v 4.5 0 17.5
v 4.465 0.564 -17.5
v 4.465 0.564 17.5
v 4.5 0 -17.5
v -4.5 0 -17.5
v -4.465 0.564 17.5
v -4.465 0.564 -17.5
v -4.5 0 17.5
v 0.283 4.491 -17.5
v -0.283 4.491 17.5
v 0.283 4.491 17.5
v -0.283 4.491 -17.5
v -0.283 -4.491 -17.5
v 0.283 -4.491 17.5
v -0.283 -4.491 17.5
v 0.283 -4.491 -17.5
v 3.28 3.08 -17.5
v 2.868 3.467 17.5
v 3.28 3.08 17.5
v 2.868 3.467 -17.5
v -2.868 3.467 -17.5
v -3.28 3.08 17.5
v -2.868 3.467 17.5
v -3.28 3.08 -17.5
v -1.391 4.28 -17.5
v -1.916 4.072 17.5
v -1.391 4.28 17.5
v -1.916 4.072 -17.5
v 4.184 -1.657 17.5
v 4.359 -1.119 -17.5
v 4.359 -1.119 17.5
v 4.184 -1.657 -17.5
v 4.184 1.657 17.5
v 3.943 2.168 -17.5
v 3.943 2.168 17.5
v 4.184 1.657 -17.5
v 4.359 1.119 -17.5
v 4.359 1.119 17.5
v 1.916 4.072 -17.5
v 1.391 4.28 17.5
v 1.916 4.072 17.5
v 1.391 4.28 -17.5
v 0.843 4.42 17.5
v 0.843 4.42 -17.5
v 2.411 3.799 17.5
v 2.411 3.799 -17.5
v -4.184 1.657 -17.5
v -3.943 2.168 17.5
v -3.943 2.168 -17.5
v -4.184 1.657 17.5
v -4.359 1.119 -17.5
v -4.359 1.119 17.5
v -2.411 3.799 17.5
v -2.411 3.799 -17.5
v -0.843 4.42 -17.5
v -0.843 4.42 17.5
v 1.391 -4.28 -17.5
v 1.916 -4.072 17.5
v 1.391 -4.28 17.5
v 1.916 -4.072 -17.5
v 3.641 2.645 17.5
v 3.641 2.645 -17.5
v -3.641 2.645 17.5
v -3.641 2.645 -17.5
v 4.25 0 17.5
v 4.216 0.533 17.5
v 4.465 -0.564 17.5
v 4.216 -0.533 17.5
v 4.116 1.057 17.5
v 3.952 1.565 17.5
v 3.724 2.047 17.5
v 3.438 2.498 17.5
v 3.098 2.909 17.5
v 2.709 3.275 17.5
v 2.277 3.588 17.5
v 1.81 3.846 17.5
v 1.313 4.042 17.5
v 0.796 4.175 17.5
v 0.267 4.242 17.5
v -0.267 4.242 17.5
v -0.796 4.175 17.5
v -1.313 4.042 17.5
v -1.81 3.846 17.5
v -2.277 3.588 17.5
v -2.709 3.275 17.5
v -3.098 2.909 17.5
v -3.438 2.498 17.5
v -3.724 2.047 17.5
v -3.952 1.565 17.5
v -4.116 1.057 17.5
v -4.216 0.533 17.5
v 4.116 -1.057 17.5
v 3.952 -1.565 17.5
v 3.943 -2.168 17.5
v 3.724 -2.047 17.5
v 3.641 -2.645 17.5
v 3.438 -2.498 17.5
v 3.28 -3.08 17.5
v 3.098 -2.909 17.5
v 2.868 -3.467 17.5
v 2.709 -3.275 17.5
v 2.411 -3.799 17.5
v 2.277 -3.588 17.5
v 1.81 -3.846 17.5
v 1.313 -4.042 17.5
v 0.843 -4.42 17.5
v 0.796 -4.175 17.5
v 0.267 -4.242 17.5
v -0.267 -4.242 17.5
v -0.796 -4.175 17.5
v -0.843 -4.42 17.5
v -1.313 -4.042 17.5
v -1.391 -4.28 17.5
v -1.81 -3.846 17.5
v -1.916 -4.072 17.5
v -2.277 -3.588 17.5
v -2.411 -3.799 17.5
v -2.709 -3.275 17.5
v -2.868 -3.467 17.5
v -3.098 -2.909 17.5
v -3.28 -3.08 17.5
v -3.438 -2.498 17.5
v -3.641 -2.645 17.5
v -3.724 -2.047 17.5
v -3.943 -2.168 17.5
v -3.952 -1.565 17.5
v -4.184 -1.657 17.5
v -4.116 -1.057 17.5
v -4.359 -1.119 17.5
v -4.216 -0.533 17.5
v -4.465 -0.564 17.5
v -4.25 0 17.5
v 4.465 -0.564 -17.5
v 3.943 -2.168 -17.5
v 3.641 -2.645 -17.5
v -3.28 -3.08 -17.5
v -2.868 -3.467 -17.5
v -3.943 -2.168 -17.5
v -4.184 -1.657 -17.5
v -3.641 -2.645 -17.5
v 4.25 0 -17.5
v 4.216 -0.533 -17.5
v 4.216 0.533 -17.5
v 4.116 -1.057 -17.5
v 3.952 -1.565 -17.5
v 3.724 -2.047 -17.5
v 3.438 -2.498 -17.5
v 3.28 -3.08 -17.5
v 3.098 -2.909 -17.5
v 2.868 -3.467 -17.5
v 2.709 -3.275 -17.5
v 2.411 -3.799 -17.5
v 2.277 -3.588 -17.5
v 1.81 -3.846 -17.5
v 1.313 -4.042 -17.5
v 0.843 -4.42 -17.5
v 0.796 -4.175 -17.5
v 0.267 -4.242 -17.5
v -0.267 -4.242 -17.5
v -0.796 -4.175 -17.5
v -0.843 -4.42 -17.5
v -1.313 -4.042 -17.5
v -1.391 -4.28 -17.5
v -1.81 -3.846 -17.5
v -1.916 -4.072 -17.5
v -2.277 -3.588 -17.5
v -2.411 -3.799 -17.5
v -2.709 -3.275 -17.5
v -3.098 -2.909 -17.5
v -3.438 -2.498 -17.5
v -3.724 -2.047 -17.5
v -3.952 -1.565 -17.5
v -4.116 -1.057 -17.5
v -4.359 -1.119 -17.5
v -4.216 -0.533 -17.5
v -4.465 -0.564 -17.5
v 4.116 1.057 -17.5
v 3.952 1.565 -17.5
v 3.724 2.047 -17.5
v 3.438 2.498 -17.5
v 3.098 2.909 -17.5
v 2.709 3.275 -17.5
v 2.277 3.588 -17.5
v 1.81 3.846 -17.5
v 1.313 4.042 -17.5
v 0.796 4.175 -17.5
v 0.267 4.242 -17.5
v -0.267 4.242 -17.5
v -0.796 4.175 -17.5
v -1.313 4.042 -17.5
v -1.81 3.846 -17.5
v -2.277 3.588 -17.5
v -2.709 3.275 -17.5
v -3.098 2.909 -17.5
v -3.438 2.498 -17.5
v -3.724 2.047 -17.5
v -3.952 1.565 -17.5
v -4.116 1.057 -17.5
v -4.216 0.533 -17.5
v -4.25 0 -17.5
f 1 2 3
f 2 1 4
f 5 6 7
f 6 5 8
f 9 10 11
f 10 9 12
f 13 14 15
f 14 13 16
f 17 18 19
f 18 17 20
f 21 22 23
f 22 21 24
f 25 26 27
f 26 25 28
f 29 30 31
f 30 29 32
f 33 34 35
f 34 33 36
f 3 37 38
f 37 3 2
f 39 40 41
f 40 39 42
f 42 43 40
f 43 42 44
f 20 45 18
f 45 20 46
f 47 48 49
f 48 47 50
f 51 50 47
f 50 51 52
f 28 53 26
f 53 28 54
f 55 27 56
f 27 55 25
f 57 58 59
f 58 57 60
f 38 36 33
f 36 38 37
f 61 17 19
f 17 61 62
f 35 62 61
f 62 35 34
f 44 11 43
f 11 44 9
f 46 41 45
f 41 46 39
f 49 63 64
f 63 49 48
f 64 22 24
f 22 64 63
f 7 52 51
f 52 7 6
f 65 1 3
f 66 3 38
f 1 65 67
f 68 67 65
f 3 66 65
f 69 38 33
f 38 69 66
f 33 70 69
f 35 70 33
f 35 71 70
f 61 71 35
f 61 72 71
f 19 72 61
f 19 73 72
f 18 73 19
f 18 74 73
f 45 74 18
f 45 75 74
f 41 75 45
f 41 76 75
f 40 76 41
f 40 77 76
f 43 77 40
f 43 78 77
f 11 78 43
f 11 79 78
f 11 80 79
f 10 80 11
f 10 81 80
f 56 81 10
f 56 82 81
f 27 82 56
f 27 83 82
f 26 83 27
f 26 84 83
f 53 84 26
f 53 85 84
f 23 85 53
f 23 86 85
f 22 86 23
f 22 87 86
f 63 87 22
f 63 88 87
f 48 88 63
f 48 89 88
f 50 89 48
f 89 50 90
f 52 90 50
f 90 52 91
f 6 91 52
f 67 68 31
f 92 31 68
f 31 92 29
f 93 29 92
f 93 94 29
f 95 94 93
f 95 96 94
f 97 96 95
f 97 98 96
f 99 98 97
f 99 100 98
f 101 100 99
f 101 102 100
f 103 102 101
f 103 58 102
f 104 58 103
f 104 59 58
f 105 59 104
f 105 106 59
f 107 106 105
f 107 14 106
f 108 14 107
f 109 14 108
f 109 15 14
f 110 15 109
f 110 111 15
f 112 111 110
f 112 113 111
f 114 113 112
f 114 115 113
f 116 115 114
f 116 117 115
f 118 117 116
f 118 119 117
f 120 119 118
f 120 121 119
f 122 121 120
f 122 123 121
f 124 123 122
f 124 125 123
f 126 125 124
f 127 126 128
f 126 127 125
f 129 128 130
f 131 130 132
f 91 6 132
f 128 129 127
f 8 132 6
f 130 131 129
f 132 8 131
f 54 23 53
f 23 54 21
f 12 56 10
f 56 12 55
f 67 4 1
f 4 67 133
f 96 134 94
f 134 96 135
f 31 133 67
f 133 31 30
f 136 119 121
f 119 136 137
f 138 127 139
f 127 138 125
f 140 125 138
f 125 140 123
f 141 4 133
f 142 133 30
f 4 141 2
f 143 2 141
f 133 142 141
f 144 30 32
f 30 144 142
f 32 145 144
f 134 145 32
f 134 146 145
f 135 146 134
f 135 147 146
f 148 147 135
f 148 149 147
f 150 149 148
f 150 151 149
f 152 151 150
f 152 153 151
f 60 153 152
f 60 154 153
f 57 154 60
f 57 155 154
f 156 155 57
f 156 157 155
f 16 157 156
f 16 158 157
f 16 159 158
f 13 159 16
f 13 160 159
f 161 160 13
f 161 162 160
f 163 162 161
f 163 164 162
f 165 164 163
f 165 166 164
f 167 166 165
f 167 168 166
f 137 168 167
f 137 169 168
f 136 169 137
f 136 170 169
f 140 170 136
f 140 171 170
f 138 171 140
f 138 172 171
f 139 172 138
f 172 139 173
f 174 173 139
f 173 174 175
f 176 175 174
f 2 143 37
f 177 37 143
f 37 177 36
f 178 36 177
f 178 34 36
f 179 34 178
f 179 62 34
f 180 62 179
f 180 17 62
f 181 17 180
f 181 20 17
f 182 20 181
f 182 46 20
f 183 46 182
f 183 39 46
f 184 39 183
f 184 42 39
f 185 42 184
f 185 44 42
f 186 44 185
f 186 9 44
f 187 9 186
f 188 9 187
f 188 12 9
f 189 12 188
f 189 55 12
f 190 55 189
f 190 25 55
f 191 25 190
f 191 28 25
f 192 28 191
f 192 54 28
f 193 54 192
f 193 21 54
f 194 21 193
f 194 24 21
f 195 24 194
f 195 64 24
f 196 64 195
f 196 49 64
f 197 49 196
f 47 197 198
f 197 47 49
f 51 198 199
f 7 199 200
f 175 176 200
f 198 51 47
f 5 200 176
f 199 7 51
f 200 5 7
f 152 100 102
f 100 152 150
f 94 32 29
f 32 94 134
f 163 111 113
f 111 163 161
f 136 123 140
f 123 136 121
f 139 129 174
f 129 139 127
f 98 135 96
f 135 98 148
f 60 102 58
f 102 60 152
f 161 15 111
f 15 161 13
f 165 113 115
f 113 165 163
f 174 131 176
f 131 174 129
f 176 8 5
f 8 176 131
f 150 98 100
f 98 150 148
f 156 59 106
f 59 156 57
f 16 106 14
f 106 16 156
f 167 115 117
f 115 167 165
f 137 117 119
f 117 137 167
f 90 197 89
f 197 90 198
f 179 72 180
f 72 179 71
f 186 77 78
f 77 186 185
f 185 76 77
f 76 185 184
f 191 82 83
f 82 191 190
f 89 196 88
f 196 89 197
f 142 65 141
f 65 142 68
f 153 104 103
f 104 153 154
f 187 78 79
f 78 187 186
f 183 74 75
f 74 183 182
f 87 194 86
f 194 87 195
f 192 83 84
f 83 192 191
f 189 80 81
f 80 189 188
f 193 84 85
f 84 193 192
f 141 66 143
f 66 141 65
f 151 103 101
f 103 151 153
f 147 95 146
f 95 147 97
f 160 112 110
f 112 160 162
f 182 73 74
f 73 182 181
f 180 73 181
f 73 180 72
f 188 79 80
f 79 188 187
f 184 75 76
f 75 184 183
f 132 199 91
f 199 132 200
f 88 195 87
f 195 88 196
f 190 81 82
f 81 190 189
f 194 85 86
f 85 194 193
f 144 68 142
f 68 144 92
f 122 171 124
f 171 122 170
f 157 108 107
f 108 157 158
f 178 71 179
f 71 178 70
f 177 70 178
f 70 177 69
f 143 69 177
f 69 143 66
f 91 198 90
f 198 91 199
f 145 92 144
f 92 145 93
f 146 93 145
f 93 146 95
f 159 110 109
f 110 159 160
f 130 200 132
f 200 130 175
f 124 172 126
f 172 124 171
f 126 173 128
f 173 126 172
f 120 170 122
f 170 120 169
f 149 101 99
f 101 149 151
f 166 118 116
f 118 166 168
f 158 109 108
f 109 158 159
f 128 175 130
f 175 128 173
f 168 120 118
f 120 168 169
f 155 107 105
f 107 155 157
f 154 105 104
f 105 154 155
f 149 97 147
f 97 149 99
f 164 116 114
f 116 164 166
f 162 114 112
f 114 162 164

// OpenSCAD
$fn = 50;


difference() {
	union() {
		translate(v = [0, 0, -17.5000000000]) {
			cylinder(h = 35, r = 4.5000000000);
		}
	}
	union() {
		translate(v = [0, 0, -100.0000000000]) {
			cylinder(h = 200, r = 4.2500000000);
		}
	}
}
